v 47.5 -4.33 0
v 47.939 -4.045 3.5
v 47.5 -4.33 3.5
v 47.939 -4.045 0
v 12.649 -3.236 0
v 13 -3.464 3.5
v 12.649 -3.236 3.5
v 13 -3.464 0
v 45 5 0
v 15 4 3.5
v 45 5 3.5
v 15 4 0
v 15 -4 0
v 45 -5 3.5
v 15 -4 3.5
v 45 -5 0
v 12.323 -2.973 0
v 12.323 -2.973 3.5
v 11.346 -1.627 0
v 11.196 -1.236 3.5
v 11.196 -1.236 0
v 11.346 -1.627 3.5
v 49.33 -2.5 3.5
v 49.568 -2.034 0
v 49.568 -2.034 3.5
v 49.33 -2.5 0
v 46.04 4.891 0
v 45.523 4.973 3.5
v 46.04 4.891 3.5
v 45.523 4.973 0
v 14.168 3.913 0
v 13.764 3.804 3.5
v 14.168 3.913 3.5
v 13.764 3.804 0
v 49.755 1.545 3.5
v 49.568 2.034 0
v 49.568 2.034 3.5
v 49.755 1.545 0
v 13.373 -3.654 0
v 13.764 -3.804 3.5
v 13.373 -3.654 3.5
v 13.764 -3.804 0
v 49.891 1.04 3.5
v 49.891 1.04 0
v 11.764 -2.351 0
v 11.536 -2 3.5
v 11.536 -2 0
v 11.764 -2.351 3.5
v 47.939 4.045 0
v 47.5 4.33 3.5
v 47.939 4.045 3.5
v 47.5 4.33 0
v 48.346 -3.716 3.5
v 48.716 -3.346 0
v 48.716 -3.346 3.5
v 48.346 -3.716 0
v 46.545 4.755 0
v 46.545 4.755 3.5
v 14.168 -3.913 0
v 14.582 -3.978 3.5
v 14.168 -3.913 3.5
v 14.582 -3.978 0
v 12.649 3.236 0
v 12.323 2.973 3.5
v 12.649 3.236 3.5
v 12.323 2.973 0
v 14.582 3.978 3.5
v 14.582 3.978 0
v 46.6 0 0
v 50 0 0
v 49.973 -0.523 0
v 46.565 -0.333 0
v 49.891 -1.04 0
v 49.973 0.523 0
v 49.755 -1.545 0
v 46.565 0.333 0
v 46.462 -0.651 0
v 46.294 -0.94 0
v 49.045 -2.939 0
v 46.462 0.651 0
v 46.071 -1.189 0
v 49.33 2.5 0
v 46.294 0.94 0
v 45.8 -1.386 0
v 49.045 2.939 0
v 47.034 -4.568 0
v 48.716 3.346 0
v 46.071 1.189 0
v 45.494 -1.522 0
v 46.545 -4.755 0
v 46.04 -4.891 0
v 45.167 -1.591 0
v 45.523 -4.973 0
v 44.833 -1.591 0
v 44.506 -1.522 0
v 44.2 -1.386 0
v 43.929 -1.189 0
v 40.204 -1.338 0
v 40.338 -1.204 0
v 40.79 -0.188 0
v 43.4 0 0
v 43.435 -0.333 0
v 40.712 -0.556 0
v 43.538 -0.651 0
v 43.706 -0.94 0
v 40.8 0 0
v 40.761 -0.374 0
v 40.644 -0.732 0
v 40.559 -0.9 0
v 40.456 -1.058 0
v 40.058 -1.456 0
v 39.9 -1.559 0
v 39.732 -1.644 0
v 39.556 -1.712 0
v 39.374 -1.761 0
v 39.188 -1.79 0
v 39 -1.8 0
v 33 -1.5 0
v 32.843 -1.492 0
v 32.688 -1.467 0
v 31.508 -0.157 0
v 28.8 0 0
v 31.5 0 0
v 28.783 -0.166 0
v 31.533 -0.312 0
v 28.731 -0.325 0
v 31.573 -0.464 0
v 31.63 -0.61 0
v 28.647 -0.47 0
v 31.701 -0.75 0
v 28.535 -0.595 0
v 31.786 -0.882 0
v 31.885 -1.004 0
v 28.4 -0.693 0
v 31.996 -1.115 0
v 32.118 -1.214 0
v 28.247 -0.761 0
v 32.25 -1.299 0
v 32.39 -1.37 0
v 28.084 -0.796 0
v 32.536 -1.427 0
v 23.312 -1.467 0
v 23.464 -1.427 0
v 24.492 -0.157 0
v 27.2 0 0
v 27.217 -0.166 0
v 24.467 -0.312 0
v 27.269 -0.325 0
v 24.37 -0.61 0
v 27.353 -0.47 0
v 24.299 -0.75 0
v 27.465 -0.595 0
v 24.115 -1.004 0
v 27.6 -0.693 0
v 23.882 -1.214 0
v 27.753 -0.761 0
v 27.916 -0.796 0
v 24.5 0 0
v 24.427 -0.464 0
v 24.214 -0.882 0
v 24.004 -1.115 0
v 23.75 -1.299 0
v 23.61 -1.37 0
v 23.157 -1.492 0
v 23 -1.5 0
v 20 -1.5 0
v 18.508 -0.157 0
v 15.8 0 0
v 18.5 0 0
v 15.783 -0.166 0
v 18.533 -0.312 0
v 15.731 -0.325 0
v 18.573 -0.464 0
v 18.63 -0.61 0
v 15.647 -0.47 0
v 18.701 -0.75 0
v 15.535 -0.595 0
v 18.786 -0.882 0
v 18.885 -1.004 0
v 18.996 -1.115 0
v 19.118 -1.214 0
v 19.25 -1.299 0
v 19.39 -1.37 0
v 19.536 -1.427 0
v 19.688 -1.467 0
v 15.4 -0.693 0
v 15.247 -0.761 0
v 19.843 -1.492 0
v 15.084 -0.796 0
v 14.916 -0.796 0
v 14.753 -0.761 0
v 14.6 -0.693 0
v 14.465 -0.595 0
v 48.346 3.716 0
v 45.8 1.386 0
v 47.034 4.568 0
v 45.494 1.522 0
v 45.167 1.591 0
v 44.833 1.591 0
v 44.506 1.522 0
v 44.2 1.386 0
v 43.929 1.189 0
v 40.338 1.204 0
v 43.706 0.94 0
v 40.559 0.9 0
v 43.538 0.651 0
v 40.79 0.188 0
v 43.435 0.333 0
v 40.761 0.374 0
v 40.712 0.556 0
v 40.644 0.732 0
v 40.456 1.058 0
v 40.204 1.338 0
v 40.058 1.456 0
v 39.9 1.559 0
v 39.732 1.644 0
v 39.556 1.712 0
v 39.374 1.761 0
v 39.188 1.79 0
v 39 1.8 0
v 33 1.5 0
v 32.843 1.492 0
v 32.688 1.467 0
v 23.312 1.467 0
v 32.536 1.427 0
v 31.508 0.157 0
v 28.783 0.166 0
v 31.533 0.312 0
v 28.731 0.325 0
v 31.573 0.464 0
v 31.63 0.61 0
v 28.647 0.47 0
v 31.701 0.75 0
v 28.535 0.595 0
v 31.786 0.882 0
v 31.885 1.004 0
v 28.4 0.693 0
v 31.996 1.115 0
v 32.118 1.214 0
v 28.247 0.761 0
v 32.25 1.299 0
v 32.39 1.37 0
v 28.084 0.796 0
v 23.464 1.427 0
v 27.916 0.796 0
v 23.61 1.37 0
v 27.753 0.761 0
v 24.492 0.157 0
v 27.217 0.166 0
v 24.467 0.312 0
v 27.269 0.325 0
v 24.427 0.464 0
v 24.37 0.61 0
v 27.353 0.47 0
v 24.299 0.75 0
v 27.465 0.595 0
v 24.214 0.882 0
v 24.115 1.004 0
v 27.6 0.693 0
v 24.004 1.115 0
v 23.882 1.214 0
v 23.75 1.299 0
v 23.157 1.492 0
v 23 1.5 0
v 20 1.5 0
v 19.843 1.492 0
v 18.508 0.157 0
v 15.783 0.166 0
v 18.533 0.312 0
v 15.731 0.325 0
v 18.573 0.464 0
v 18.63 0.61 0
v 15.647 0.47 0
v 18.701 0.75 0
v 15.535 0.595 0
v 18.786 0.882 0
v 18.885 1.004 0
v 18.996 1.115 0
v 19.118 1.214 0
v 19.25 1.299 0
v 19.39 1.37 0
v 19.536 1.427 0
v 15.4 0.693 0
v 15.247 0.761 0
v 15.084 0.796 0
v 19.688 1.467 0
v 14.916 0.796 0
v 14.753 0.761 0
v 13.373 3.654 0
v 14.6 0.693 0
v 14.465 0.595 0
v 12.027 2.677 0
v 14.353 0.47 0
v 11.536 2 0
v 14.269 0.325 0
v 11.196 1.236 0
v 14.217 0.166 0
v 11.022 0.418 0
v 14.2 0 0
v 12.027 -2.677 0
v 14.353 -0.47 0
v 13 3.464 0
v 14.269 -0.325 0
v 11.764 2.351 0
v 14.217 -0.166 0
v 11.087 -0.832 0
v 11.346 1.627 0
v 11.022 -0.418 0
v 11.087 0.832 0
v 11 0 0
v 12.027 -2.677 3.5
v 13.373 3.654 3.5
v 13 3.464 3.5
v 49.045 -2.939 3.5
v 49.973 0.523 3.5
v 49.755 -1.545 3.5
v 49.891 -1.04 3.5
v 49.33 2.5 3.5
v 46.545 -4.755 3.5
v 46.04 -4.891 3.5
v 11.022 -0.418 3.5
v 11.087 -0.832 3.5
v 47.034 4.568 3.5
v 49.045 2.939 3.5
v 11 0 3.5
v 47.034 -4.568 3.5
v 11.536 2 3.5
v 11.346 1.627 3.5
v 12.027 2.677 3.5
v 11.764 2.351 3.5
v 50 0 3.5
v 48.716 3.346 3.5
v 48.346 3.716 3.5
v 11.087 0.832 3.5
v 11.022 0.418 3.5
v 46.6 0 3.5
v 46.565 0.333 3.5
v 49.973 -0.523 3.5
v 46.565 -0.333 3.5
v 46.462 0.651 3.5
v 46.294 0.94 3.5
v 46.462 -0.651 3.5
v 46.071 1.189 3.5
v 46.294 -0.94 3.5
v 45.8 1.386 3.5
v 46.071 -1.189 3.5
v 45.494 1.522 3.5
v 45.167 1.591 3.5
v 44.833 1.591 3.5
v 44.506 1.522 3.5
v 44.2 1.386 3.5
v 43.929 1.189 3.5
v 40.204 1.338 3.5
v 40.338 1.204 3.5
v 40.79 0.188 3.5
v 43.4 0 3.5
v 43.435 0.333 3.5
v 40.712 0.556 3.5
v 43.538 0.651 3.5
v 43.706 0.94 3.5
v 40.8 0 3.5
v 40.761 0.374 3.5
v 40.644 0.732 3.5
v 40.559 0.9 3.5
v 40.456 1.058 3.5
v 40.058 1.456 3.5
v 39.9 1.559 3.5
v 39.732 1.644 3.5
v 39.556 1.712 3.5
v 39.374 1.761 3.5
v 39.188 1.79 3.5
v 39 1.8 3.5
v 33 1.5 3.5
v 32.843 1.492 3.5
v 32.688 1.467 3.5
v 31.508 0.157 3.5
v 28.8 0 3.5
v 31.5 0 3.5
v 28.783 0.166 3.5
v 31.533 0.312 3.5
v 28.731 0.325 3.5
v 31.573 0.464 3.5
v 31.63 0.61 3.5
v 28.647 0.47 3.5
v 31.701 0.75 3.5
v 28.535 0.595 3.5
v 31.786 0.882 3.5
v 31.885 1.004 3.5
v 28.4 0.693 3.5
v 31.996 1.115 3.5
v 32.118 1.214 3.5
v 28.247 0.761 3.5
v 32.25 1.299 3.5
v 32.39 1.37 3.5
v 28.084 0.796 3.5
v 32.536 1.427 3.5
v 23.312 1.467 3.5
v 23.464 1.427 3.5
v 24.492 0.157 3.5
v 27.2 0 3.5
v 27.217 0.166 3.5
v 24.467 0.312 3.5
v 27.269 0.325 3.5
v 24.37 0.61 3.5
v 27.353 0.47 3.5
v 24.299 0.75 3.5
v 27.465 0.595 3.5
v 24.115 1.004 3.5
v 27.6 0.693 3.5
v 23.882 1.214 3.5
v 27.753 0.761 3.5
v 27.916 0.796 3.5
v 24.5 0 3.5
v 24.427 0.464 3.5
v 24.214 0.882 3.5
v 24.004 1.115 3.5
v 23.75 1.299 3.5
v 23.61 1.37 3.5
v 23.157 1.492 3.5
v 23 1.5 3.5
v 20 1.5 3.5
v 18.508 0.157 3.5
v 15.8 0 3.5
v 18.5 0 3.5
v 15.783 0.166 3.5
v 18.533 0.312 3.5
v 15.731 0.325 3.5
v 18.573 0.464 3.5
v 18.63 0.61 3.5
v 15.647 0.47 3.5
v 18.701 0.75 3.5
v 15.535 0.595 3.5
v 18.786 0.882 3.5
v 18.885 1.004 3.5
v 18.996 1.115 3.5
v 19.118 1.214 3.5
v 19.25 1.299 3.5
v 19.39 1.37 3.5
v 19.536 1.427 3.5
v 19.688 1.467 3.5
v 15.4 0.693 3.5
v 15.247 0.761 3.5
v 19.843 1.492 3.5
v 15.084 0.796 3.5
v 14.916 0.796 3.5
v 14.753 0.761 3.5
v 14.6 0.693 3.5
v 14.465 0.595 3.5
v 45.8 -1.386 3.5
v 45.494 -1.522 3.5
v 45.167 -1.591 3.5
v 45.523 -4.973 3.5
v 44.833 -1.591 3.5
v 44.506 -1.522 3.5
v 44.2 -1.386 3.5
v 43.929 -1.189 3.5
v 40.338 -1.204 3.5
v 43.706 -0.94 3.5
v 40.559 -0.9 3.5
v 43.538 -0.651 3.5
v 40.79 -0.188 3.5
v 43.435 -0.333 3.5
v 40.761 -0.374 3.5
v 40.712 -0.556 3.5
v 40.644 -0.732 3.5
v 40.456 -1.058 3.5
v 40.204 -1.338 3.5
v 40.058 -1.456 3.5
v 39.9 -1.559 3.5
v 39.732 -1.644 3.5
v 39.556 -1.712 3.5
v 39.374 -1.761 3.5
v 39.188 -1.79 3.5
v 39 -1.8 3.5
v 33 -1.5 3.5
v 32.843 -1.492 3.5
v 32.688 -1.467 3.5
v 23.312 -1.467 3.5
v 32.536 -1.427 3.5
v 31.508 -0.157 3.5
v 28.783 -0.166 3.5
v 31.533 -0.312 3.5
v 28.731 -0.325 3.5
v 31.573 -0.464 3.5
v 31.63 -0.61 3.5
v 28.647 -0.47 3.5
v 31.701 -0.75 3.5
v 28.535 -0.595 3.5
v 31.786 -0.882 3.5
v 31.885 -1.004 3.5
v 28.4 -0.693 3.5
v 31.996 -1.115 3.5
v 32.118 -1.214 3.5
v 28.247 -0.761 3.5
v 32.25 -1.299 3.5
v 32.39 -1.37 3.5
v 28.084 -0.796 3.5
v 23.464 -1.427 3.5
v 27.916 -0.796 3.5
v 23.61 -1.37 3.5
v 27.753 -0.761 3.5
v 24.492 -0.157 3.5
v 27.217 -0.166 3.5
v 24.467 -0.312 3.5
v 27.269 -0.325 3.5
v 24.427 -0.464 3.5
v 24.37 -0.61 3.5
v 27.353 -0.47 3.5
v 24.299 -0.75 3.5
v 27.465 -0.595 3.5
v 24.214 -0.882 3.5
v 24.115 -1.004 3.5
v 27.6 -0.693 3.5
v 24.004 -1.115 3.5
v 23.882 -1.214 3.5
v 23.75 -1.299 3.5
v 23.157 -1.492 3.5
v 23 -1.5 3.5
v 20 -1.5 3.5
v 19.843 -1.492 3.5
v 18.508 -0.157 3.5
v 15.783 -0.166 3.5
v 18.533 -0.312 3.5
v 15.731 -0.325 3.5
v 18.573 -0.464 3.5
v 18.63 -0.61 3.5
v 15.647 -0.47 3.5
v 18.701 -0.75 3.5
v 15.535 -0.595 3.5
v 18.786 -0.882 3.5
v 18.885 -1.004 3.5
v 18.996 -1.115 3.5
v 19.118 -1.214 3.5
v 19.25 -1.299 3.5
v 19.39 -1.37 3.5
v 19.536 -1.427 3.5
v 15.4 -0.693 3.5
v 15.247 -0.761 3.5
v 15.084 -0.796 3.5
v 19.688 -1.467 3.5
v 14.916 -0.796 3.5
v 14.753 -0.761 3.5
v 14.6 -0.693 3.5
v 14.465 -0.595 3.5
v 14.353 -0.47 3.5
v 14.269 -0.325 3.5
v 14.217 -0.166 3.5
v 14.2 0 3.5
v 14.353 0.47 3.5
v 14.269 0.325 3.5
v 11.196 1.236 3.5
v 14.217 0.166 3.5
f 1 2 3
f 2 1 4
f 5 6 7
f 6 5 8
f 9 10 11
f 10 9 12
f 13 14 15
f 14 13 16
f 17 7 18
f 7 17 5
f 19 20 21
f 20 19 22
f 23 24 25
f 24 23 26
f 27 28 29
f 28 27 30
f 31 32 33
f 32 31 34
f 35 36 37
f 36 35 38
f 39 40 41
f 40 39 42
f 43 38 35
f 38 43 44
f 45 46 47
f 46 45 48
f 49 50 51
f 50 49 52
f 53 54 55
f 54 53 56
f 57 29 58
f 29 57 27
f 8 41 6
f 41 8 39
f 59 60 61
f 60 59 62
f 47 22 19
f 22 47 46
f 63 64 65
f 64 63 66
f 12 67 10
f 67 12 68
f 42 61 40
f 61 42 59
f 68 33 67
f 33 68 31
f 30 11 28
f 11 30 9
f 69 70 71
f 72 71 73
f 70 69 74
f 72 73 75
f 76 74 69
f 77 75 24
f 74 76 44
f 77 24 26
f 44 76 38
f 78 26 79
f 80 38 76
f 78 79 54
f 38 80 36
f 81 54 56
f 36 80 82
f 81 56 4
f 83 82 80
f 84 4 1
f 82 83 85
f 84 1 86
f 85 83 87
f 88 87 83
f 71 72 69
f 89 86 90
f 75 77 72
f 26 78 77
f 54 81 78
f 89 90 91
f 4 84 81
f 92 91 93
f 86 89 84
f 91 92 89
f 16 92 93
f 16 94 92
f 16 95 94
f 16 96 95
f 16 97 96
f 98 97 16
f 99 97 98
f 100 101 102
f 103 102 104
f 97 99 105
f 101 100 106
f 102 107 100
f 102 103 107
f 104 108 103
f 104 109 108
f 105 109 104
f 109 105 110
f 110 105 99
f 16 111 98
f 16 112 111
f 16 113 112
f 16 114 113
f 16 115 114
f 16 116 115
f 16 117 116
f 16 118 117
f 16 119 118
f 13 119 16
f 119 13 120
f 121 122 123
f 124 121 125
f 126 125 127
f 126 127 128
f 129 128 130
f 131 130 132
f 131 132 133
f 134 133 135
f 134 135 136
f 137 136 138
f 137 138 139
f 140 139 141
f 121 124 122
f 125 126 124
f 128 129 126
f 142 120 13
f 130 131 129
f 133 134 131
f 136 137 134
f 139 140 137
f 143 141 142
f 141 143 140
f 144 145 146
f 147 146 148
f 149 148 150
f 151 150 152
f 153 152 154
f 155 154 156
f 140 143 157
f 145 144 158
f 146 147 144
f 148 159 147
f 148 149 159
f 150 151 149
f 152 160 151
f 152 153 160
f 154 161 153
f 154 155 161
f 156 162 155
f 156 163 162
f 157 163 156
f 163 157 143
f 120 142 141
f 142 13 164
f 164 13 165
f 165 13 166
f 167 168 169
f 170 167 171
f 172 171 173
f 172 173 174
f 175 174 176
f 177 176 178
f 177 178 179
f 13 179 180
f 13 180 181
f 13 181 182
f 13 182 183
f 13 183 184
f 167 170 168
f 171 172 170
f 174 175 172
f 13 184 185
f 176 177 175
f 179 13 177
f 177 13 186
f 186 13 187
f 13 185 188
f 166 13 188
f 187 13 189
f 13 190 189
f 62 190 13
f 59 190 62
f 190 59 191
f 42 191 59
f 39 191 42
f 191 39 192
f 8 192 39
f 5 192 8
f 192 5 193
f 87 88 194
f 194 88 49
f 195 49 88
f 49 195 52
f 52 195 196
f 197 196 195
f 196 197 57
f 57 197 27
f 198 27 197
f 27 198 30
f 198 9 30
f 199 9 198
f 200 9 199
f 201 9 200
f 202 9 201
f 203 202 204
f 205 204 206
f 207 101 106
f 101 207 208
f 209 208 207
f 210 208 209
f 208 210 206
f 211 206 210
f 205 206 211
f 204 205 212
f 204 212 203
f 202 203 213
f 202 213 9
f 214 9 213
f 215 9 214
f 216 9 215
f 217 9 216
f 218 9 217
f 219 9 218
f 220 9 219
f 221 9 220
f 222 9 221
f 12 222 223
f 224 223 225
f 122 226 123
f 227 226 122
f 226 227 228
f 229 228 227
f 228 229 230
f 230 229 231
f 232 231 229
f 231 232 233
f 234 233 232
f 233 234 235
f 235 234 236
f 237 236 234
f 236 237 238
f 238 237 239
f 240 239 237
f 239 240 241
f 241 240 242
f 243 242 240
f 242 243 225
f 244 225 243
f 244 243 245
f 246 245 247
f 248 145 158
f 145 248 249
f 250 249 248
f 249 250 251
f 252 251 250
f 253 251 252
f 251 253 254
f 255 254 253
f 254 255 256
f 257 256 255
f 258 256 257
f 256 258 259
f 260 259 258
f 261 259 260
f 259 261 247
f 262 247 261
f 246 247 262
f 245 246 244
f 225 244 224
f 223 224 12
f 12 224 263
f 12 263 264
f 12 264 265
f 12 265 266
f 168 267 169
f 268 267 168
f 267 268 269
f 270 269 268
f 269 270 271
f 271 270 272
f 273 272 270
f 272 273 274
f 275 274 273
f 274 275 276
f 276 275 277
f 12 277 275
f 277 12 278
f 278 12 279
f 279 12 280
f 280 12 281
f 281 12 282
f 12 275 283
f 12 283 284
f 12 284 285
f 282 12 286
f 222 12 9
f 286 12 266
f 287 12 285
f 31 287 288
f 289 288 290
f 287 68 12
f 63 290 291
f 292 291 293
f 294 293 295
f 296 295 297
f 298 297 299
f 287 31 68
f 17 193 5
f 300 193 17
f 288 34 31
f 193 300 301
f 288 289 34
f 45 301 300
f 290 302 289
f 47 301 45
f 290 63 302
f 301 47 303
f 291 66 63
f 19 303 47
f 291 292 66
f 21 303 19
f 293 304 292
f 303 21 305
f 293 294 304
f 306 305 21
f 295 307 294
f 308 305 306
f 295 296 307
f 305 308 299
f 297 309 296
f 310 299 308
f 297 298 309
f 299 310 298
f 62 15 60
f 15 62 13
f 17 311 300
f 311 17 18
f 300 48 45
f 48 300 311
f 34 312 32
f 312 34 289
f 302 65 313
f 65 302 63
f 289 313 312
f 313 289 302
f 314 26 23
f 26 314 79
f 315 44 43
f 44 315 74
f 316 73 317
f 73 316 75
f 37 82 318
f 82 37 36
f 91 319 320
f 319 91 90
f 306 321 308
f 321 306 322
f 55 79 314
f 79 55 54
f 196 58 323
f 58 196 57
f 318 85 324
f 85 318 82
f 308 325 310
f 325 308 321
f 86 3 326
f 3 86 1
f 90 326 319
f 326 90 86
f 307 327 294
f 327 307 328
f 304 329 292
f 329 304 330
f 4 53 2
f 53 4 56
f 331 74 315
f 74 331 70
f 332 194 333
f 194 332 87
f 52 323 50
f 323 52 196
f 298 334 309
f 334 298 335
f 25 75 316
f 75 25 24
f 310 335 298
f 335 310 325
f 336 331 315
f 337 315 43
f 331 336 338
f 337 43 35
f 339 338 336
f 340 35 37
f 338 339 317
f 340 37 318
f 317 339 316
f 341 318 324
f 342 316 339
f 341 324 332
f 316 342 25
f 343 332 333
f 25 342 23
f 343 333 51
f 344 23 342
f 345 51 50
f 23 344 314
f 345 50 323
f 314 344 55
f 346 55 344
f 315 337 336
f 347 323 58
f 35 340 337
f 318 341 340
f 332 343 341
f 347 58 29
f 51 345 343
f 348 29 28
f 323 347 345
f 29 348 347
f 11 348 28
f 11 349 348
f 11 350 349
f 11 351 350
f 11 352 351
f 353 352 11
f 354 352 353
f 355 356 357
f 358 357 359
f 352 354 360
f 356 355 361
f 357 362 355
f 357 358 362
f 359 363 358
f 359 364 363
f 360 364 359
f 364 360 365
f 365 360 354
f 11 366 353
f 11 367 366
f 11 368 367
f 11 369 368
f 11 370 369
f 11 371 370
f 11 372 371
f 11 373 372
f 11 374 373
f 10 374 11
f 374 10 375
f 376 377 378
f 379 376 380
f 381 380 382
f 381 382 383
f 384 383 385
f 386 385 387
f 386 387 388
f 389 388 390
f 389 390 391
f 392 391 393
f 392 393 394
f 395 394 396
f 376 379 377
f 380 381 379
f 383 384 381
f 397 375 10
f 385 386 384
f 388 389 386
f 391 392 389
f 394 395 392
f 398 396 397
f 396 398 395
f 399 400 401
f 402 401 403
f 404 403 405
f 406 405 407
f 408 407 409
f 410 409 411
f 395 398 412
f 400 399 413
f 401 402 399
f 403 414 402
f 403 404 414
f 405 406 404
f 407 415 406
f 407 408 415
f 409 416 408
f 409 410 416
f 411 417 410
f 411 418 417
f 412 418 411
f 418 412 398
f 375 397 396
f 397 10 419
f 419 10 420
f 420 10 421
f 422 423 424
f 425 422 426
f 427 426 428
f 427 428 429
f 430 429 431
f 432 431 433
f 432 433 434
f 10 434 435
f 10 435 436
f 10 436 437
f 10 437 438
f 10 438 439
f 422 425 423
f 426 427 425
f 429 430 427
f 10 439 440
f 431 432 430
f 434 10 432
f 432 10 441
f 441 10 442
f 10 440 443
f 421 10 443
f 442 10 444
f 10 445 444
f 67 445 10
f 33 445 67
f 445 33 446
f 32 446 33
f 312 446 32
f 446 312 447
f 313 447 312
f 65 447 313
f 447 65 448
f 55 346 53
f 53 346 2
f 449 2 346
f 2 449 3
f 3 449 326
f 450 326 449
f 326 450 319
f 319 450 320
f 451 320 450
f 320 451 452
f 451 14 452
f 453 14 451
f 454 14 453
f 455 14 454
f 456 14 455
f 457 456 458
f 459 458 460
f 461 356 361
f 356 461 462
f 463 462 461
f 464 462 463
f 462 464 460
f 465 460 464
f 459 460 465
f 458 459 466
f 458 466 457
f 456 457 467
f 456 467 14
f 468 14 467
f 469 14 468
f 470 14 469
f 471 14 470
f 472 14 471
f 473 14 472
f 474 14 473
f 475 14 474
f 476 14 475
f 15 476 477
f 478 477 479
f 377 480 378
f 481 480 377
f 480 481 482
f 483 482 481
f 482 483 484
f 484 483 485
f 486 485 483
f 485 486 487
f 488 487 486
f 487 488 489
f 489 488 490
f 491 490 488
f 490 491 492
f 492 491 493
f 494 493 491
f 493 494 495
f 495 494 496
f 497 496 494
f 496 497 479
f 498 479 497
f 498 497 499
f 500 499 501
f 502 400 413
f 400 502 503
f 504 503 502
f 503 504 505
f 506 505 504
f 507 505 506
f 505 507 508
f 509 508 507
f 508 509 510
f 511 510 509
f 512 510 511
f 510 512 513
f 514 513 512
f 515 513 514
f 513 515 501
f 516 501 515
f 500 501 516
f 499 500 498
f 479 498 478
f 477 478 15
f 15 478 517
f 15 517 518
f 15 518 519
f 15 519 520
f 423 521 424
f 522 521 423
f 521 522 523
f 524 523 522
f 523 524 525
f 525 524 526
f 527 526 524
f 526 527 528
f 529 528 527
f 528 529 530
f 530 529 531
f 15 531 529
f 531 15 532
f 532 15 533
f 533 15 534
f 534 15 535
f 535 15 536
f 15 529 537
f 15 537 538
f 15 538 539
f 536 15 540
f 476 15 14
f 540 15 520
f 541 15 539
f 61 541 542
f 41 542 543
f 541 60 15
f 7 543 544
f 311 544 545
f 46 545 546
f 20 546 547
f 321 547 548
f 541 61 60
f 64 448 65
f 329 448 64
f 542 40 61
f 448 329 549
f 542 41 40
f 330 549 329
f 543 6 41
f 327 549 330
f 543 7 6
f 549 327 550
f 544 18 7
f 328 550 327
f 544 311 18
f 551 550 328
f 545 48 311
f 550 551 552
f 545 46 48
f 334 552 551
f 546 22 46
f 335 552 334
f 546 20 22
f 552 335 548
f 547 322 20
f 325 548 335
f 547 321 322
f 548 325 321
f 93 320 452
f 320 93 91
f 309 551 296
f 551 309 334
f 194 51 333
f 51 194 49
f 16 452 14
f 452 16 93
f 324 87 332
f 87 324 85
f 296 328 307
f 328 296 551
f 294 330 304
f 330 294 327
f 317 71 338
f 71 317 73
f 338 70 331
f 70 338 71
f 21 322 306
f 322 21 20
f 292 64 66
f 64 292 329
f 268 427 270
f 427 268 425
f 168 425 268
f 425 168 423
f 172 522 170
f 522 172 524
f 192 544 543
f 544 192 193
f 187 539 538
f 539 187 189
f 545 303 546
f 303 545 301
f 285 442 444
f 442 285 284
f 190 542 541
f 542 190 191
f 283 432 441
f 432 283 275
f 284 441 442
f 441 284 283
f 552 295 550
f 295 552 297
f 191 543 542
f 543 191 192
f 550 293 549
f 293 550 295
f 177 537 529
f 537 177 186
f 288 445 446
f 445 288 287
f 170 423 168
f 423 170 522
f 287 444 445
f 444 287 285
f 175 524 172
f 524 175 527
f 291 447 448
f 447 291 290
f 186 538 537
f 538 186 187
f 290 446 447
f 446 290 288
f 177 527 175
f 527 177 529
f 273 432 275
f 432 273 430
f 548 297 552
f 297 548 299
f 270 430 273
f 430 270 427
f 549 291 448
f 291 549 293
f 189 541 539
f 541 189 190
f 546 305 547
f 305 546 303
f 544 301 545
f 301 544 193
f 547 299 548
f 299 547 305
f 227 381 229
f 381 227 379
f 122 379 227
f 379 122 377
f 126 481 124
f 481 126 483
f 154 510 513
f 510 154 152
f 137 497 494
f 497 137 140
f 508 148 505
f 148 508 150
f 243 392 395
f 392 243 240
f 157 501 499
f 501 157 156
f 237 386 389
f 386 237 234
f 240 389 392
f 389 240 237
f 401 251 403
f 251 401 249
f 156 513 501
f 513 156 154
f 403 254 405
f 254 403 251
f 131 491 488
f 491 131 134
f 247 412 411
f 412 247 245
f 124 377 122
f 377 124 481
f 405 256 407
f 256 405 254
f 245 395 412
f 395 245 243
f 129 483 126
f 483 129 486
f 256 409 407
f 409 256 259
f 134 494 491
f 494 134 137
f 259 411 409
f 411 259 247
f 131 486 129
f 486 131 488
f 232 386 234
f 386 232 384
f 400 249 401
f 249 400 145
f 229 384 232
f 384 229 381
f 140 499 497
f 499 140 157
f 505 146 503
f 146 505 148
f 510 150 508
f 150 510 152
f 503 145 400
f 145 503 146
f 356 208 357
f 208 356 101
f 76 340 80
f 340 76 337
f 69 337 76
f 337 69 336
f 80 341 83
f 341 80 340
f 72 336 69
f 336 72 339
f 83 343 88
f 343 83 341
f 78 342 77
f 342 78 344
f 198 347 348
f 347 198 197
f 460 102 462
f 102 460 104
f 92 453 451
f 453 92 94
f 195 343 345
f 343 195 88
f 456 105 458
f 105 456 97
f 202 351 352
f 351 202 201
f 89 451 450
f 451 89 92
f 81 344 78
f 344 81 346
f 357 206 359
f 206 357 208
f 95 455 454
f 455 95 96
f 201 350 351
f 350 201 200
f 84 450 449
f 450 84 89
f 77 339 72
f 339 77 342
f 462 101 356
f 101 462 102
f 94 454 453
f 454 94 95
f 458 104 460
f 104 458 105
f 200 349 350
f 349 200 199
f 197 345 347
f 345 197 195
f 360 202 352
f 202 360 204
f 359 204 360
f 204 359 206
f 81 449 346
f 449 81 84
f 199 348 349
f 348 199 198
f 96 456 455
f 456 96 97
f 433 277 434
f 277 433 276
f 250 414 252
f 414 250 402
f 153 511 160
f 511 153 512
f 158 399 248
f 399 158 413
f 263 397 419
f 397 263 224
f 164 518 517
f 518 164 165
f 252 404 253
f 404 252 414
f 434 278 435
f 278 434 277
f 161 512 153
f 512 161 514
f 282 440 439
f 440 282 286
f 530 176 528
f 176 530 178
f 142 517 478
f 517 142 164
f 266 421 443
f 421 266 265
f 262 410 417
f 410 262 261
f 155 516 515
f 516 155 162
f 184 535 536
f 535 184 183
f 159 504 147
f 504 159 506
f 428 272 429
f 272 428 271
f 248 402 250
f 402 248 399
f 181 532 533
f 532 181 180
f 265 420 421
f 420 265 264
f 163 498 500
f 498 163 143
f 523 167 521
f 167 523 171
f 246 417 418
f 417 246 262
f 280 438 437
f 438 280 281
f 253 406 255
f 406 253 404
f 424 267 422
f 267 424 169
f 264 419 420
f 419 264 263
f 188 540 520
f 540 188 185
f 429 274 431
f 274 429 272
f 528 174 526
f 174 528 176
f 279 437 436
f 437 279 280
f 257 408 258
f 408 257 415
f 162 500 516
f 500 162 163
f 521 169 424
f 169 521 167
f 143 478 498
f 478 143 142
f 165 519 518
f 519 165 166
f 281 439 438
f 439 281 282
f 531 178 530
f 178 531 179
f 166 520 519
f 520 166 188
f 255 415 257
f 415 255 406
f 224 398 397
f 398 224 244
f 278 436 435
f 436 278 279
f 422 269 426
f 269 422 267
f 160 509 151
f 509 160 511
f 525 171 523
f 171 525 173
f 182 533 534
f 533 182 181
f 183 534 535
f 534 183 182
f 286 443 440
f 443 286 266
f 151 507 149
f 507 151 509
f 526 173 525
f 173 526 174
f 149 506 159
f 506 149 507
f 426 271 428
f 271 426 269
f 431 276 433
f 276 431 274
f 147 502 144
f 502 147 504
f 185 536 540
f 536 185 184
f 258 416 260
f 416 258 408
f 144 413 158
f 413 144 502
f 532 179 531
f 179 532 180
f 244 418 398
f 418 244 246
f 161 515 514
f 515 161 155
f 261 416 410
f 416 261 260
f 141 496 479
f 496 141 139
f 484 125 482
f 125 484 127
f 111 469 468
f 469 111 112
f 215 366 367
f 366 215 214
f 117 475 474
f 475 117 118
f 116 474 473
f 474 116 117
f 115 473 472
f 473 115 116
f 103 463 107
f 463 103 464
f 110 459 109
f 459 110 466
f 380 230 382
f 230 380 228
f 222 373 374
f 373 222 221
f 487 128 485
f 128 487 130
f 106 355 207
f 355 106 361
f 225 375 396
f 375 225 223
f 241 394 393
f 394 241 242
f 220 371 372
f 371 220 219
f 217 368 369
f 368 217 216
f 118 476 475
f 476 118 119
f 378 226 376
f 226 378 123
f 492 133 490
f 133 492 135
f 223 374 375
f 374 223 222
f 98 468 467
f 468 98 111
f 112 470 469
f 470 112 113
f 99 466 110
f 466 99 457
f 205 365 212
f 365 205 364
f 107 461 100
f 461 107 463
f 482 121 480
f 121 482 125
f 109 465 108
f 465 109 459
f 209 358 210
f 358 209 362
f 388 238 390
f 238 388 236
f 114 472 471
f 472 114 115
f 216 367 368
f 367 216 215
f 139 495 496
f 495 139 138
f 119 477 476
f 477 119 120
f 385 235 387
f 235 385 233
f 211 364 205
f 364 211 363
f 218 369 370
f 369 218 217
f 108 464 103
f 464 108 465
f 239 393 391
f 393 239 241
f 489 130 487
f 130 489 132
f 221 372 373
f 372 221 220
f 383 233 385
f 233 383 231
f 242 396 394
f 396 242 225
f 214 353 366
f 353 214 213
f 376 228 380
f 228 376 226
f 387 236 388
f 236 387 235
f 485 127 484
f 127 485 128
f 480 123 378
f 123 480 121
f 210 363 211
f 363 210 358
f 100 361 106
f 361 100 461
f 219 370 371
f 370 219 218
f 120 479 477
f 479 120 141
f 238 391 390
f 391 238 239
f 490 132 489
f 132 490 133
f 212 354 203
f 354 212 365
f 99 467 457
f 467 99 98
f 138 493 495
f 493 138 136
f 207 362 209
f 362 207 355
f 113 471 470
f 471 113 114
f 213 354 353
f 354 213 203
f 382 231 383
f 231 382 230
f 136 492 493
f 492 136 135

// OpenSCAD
module shoulder_part(){
l = 45;
h=3.5;
difference(){
hull(){
translate([15,0,0])cylinder(d=8,h=h,$fn=60);
translate([45,0,0])cylinder(d=10,h=h,$fn=60);
}
translate([15,0,-1])cylinder(d=1.6,h=h*2,$fn=30);
translate([28,0,-1])cylinder(d=1.6,h=h*2,$fn=30);
translate([l,0,-1])cylinder(d=3.2,h=h*2,$fn=30);


hull(){
translate([20,0,-1])cylinder(d=3,h=2*h,$fn=60);
translate([23,0,-1])cylinder(d=3,h=2*h,$fn=60);
}
hull(){
translate([33,0,-1])cylinder(d=3,h=2*h,$fn=60);
translate([39,0,-1])cylinder(d=3.6,h=2*h,$fn=60);
}
}
}

shoulder_part();
